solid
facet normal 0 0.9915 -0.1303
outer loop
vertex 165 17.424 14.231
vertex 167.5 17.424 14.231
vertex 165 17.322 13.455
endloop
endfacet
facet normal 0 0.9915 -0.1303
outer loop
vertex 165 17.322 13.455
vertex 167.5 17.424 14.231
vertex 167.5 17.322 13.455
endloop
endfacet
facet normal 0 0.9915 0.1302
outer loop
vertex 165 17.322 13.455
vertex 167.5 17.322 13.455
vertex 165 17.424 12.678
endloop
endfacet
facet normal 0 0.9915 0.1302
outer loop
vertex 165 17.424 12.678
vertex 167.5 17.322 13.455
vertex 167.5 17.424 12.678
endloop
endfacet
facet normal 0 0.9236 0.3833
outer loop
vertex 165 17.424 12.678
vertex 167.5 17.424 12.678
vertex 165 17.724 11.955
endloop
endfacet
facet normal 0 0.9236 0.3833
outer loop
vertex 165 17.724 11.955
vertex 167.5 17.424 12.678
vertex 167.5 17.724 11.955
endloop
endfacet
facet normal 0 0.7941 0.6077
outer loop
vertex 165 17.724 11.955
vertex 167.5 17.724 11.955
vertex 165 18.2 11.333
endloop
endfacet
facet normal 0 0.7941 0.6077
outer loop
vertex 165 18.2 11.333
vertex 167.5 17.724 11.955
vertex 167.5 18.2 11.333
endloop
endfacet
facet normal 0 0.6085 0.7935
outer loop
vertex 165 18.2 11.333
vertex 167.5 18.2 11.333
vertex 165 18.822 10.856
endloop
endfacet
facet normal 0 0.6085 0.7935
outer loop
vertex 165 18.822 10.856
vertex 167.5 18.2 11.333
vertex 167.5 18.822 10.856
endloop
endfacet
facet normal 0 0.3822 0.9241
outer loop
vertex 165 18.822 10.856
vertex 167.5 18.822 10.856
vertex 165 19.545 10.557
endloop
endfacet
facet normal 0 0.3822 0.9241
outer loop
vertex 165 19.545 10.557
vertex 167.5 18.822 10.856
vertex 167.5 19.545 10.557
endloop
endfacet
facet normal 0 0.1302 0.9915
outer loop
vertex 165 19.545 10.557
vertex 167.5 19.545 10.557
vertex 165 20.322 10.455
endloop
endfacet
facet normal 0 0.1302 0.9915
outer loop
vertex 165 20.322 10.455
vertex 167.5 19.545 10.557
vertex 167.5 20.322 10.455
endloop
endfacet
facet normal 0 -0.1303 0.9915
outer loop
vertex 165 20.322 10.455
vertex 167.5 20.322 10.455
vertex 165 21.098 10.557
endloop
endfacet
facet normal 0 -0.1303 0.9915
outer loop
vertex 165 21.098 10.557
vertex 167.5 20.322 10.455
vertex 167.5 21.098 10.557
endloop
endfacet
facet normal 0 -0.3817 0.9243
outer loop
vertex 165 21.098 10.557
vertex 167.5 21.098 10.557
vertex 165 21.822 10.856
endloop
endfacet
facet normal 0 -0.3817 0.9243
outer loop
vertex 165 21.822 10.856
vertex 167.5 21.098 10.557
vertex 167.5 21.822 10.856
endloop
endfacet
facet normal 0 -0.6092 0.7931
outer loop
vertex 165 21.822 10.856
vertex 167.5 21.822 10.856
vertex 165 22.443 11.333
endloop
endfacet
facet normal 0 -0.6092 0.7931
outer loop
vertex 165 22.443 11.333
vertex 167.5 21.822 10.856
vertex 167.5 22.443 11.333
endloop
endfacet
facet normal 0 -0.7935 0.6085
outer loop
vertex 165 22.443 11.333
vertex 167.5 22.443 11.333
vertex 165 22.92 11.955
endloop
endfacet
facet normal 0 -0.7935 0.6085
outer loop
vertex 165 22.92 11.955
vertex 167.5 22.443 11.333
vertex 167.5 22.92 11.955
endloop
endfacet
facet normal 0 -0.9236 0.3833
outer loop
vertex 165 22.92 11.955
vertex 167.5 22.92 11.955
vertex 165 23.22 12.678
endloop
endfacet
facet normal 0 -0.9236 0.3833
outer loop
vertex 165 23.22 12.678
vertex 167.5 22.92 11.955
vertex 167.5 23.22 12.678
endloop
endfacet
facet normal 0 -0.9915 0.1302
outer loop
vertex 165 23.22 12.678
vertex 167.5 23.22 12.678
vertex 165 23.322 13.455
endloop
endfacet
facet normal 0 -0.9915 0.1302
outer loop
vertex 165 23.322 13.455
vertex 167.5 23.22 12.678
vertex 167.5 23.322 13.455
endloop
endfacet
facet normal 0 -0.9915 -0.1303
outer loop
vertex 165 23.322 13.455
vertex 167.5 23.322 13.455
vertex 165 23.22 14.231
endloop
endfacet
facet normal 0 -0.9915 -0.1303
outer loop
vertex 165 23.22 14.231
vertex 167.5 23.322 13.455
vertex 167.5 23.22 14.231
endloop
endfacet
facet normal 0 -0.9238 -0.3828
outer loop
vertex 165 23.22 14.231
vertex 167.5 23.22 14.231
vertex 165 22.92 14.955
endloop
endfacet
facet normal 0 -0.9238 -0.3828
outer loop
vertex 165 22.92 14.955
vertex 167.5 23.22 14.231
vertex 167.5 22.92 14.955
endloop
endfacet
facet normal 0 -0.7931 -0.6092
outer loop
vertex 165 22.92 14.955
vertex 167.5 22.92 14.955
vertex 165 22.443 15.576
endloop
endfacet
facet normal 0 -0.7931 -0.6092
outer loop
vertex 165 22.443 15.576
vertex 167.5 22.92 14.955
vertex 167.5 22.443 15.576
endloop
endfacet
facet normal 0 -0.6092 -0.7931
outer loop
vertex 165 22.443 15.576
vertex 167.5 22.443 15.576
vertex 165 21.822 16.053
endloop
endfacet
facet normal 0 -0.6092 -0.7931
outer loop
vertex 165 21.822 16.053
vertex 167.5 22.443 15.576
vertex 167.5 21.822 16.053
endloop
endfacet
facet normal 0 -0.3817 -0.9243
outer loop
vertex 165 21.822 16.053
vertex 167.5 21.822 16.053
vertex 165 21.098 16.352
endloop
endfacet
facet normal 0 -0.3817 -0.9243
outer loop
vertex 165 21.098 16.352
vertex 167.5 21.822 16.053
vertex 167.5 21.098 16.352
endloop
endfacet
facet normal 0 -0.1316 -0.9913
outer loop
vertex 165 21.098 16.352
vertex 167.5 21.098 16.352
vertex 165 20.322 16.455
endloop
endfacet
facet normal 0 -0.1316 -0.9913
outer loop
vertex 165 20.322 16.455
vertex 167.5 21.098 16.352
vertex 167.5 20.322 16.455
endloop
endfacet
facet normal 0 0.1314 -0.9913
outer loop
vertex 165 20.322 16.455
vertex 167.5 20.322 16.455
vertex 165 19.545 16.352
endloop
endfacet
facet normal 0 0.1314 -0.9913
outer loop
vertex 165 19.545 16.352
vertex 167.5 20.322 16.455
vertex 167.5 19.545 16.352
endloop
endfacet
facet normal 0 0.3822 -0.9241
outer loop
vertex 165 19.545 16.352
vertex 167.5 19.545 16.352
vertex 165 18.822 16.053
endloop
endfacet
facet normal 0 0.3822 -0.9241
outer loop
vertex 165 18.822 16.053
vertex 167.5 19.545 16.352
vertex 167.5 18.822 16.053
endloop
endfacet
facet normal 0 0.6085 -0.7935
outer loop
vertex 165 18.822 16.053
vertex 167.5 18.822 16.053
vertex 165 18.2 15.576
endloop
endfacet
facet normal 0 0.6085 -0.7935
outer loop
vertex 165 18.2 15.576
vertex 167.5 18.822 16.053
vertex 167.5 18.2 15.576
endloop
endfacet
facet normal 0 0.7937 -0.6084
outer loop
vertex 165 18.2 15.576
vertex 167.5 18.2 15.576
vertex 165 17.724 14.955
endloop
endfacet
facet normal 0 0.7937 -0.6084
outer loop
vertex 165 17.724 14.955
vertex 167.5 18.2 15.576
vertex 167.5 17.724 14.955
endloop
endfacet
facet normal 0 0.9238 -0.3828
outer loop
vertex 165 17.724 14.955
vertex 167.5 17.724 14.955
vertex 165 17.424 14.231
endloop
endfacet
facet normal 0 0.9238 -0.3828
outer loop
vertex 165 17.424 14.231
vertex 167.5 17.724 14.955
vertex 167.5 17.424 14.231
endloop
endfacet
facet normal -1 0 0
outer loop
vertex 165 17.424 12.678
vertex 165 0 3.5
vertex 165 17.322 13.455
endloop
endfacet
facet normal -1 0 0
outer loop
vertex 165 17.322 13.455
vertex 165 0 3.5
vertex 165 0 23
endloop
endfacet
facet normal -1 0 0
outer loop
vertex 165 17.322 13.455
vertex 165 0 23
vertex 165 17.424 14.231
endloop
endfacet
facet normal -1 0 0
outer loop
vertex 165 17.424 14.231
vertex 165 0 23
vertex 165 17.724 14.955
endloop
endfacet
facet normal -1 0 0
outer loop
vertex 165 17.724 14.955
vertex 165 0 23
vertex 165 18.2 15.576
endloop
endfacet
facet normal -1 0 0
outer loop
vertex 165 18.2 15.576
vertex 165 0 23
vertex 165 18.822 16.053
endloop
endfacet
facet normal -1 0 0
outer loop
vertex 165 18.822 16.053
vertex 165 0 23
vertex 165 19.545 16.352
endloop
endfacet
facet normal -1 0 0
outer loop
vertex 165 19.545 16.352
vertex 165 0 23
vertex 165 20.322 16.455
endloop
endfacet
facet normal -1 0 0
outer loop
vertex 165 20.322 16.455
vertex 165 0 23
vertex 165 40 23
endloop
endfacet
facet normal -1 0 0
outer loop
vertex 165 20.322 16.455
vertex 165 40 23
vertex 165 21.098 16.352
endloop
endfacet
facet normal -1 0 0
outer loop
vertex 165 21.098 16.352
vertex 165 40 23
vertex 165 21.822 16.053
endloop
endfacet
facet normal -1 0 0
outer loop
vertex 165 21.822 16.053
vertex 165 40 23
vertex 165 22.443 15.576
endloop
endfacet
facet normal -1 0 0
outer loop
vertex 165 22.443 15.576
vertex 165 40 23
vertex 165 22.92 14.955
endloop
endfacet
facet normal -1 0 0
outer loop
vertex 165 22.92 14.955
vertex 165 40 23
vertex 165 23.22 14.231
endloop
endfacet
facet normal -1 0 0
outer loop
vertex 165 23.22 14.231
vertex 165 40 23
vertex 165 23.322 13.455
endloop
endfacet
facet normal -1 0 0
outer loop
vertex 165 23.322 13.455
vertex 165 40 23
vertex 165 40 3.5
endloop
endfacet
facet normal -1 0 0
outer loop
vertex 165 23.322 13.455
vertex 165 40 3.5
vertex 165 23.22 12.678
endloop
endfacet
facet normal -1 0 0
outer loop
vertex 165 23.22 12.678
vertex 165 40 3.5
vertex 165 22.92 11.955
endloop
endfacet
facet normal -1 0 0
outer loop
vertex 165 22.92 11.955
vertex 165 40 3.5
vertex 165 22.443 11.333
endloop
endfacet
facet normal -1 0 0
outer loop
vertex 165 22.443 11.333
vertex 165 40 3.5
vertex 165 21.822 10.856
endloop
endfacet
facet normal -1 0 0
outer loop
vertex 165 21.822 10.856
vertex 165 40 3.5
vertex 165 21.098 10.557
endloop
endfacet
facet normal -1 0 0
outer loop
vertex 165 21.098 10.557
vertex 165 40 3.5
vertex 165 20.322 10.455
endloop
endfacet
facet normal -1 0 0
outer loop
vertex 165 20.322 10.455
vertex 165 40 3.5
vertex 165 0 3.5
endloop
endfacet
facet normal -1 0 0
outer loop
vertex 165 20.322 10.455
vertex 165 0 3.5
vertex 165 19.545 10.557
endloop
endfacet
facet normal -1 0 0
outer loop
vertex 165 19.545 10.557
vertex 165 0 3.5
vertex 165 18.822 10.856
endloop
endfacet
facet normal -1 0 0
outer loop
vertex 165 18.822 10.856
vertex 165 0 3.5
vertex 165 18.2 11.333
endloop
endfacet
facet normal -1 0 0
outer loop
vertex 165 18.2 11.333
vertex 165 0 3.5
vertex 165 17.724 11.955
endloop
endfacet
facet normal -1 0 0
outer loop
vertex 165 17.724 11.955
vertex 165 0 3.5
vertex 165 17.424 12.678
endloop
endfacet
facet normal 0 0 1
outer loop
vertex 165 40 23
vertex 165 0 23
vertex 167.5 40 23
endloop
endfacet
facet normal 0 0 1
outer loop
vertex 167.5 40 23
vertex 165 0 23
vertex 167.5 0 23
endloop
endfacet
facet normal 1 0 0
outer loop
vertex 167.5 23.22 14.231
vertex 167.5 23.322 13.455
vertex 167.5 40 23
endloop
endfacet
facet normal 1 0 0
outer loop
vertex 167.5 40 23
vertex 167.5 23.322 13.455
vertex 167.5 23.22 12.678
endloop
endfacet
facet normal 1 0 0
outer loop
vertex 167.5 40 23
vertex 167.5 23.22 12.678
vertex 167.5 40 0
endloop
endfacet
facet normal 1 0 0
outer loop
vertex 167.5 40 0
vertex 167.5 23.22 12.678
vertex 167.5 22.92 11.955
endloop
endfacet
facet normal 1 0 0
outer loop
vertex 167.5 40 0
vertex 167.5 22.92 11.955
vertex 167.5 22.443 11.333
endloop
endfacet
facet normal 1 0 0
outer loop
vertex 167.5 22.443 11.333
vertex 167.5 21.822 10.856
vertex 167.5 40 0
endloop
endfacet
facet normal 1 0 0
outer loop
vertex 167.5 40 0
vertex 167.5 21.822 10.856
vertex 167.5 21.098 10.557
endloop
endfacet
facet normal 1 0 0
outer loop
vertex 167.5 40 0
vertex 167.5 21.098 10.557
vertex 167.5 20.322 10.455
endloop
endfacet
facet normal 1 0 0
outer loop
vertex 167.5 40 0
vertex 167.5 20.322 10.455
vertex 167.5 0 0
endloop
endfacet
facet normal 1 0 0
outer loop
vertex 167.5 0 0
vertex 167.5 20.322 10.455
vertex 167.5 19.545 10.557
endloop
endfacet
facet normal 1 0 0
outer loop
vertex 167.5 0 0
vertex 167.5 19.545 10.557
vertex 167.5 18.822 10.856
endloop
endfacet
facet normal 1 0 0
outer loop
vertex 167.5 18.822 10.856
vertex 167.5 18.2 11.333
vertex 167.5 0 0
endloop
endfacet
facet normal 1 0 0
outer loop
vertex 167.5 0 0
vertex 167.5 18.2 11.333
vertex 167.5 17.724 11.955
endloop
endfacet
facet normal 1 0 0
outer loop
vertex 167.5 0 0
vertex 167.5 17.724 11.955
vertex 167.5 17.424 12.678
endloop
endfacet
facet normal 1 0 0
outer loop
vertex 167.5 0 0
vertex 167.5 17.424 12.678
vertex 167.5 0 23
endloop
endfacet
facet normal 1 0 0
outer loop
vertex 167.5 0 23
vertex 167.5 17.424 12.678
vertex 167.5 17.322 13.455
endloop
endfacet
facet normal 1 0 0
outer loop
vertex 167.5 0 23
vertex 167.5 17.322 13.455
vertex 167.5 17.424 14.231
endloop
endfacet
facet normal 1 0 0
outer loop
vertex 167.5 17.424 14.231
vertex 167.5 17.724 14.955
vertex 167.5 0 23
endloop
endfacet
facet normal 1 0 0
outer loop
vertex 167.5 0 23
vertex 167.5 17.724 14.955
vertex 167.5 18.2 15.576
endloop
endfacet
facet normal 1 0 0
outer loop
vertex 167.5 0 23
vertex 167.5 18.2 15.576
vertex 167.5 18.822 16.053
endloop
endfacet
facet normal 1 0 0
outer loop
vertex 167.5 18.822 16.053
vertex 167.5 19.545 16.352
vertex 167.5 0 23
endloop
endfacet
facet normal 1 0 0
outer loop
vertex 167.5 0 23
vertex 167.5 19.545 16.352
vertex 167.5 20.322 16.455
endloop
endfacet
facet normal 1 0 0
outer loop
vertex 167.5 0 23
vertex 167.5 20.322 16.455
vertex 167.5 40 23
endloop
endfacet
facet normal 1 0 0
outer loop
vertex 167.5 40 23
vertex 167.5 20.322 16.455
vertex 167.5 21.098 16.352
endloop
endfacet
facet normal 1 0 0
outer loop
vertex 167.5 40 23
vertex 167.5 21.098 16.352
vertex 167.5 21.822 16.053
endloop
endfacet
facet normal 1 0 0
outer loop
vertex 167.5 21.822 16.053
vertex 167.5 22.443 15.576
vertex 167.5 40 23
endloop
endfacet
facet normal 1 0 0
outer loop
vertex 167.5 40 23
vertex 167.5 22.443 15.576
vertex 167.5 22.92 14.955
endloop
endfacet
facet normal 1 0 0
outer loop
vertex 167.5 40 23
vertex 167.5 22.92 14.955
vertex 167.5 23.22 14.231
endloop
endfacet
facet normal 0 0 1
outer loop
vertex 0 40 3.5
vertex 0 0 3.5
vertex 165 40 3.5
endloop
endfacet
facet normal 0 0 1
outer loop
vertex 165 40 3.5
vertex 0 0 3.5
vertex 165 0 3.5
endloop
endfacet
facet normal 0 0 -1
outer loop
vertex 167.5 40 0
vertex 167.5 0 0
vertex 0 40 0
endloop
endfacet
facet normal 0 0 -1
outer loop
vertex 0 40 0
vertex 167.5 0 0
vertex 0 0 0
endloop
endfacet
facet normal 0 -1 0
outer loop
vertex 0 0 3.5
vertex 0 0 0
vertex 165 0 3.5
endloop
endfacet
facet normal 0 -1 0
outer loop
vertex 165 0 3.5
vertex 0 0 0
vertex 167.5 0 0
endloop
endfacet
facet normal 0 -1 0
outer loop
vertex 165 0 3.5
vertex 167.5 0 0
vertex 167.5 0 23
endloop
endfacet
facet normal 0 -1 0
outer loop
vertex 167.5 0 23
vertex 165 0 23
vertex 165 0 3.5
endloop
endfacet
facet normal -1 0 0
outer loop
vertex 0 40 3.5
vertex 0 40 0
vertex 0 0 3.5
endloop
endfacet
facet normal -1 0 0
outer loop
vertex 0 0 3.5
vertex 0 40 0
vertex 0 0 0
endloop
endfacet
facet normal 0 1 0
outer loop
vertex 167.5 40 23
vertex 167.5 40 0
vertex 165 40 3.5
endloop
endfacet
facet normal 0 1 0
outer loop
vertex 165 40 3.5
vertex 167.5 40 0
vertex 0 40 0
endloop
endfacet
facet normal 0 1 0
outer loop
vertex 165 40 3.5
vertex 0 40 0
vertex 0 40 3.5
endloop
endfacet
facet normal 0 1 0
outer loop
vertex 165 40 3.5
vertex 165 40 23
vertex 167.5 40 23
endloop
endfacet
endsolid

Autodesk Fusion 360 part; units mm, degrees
box "BoxPrimitive1" add length 40 width 165 height 3.5 placed x (0, 1, 0) y (-1, 0, 0) z (0, 0, 1) at (165, 0, 0)
box "BoxPrimitive2" add length 40 width 2.5 height 23 placed x (0, 1, 0) y (-1, 0, 0) z (0, 0, 1) at (167.5, 0, 0)
hole "Hole1" at (167.5, 20.3218, 13.4545) direction (-1, 0, 0) diameter 6 depth 5 tip angle 180
